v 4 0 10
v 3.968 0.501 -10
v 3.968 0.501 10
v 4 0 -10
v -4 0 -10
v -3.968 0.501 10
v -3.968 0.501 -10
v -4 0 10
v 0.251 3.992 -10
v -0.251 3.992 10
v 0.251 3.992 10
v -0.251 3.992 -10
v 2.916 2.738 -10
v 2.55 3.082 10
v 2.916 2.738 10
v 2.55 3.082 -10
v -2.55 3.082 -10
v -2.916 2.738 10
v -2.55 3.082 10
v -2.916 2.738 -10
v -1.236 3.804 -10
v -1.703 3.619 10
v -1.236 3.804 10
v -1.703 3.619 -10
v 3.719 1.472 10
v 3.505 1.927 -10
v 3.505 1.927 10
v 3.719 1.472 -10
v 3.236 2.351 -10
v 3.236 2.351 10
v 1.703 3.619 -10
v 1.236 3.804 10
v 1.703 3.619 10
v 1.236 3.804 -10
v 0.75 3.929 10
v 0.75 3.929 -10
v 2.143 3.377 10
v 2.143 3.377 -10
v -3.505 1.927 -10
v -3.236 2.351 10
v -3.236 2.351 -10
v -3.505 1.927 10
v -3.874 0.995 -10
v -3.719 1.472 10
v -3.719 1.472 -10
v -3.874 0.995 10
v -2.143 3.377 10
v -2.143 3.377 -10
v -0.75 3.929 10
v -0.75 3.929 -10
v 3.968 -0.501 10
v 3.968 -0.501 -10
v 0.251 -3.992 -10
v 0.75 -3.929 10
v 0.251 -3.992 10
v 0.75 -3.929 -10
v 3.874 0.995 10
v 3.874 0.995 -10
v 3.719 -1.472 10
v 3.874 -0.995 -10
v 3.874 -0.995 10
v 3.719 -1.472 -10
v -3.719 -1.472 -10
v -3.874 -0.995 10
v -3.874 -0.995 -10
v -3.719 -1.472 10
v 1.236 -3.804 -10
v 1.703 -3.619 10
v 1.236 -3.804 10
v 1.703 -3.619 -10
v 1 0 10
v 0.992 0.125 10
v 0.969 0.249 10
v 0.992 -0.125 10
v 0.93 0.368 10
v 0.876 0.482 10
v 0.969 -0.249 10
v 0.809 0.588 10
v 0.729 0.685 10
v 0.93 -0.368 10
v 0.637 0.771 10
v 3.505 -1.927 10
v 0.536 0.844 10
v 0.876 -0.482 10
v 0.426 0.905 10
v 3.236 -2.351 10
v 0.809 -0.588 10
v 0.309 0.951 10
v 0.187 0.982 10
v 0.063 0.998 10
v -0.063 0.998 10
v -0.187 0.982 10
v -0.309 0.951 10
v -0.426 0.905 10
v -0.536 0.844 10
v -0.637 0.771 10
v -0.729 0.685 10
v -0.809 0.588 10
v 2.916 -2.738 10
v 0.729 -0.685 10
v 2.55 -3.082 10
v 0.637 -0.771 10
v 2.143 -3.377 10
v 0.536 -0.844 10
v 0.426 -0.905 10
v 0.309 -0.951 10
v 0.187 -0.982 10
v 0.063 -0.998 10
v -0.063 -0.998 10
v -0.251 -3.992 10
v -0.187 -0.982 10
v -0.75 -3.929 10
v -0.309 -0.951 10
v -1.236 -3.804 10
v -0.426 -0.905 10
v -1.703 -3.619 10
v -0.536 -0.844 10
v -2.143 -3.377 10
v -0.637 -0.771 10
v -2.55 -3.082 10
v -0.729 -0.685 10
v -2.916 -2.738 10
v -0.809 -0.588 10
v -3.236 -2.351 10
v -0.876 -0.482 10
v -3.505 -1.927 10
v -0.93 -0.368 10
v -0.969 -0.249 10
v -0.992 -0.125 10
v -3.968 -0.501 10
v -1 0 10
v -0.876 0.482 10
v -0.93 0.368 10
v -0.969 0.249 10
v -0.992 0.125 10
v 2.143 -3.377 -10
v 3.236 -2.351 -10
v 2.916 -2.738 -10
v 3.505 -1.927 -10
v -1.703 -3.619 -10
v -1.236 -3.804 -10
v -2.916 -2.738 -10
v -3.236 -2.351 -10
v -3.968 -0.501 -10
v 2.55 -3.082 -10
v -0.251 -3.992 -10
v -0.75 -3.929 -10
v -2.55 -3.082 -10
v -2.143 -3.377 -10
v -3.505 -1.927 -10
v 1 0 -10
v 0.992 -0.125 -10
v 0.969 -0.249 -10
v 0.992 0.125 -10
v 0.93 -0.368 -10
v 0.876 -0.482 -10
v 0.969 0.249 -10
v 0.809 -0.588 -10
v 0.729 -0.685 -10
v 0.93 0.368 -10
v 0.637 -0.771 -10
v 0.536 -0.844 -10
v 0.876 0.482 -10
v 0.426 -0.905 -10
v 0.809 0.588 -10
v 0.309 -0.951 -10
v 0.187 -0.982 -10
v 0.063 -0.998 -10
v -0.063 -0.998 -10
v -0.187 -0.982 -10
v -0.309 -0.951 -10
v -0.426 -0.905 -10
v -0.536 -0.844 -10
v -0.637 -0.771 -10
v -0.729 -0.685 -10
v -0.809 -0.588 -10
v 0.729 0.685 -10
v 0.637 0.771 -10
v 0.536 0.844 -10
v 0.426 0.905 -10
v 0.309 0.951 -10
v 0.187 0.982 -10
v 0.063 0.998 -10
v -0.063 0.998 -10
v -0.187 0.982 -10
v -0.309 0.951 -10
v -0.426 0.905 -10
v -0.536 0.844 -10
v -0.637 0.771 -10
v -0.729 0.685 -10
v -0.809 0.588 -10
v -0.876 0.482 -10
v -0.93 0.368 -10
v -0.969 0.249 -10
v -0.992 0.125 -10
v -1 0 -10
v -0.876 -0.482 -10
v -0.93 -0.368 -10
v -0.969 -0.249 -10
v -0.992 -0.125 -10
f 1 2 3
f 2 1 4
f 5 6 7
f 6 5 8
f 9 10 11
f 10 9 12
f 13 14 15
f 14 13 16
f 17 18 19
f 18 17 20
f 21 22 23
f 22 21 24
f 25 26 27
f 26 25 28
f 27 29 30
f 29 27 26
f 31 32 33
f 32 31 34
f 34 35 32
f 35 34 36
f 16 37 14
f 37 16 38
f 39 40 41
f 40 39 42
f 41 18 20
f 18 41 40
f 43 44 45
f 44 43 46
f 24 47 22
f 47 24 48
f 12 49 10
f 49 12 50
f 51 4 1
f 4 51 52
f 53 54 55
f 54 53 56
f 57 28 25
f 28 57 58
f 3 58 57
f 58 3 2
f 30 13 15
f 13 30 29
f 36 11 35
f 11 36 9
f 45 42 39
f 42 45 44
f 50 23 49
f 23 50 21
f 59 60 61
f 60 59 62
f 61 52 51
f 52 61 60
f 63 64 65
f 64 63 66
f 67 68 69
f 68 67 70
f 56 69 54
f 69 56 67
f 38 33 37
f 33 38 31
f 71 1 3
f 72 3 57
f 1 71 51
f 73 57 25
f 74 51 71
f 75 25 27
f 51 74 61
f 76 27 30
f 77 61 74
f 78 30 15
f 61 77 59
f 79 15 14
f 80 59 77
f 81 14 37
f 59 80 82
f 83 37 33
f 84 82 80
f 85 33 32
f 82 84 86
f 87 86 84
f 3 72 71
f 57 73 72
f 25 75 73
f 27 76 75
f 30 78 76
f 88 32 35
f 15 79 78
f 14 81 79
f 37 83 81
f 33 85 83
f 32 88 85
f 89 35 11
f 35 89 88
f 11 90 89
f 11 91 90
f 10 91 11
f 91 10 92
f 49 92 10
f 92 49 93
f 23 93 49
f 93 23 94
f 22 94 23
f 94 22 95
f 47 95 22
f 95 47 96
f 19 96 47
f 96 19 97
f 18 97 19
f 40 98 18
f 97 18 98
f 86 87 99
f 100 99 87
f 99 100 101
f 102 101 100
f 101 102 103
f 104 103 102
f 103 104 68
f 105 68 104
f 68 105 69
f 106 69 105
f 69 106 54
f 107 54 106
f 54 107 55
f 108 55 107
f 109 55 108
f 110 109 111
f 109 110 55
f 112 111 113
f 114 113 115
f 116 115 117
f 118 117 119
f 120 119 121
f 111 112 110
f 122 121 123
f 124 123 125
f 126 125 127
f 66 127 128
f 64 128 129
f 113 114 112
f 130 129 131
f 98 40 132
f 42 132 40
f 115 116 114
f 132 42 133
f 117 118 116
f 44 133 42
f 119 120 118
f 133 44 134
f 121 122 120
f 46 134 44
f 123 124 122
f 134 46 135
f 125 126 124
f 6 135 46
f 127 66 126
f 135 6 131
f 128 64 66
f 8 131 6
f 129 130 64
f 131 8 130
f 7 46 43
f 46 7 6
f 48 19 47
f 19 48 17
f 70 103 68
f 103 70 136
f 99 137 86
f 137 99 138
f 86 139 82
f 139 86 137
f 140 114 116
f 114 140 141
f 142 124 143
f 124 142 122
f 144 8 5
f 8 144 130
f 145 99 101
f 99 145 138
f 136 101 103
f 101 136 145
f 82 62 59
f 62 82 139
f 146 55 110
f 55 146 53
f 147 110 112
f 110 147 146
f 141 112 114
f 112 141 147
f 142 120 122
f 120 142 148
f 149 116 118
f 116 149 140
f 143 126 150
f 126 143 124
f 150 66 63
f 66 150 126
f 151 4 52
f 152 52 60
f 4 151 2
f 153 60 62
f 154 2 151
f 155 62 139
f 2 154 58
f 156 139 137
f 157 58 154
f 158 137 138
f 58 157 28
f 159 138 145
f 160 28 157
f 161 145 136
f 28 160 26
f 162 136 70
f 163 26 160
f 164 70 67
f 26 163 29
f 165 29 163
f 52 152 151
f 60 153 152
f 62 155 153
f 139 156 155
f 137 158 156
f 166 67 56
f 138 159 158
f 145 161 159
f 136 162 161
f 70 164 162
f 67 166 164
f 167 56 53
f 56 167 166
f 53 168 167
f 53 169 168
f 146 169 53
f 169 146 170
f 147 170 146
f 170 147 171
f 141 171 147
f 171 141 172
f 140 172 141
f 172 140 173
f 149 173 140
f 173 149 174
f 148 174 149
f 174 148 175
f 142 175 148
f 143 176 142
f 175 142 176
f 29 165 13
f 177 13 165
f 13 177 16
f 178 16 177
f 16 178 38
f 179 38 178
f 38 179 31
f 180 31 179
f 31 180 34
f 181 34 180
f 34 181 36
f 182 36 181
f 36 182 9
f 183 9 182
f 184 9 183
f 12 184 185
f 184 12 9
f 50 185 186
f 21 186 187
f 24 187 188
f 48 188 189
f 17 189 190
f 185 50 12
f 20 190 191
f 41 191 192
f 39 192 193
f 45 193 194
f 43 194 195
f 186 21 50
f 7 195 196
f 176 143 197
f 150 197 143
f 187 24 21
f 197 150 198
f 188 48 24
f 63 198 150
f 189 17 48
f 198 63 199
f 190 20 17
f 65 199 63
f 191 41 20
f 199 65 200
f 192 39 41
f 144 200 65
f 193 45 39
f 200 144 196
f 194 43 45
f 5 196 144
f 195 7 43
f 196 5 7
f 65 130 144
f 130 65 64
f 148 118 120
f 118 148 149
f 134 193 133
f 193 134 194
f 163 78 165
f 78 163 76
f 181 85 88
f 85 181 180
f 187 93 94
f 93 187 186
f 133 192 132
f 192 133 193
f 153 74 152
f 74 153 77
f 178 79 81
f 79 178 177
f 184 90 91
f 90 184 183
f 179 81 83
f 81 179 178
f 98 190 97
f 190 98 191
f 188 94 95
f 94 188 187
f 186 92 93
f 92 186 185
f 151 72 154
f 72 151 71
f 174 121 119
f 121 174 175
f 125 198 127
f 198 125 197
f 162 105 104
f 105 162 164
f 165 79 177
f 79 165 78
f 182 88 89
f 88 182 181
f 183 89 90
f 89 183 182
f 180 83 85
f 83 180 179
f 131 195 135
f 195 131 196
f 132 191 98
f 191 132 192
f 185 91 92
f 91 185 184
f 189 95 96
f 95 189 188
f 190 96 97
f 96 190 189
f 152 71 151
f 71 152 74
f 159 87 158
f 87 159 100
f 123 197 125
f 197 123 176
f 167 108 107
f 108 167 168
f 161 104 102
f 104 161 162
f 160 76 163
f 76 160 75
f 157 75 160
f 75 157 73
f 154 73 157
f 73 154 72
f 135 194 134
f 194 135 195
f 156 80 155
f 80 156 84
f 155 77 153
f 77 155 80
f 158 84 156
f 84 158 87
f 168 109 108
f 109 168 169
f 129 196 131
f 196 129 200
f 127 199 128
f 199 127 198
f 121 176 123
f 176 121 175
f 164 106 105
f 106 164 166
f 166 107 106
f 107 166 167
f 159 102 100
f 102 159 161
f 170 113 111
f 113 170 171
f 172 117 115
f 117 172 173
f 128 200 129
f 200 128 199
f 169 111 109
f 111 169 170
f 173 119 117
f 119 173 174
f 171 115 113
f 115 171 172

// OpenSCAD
$fn = 50;


difference() {
	union() {
		translate(v = [0, 0, -10.0000000000]) {
			cylinder(h = 20, r = 4.0000000000);
		}
	}
	union() {
		translate(v = [0, 0, -100.0000000000]) {
			cylinder(h = 200, r = 1.0000000000);
		}
	}
}
